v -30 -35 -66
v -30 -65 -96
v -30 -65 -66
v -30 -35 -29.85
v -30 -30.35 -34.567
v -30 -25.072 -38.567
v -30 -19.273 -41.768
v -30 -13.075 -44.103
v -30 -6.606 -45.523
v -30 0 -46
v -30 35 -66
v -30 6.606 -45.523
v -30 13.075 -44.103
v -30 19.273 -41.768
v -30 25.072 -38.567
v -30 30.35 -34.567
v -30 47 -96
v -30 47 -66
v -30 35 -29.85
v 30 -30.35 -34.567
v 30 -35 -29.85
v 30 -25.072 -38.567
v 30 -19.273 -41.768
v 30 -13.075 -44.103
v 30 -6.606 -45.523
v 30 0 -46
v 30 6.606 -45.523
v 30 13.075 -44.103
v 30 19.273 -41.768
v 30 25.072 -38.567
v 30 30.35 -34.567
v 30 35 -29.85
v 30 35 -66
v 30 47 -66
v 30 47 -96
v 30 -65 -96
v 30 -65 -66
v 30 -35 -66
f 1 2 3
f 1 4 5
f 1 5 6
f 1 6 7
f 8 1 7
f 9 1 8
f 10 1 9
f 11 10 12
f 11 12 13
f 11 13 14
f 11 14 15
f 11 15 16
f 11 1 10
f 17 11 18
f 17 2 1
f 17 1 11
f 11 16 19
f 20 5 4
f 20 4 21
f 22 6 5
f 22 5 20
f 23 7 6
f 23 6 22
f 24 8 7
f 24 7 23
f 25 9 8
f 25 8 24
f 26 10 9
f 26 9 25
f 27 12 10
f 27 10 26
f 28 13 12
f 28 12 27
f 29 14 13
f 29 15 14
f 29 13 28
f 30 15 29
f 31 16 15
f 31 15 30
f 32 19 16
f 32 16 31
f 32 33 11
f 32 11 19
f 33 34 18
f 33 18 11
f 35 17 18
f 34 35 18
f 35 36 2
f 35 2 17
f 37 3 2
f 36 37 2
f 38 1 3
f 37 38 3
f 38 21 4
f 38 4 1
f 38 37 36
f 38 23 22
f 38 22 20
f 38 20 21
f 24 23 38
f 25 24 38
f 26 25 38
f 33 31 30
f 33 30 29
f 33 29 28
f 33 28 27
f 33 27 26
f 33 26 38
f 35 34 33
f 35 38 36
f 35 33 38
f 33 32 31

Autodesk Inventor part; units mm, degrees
ref_plane "Work Plane7" through (0, -46.2947, -99.445) normal (0, -0.9997, 0.0235) x (0, -0.0235, -0.9997)
ref_plane "Work Plane8" through (0, 70.92, -98.723) normal (0, -0.9994, -0.036) x (0, 0.036, -0.9994)
ref_plane "Work Plane9" through (-30, 0, 0) normal (1, 0, 0) x (0, 1, 0)
sketch "Sketch20" plane through (0, 0, 0) normal (1, 0, 0) x (0, 1, 0)
  line L0 (-87.4, 0) -> (69.4, 0) projected
  line L1 (0, -124.4) -> (0, 74.4) construction
  circle A0 centre (0, 0) radius 40
  circle A1 centre (0, 0) radius 46
  line L2 (35, -29.8496) -> (35, -66)
  line L3 (-35, -66) -> (-35, -29.8496)
  line L4 (47, -66) -> (-65, -66)
  line L5 (47, -66) -> (47, -96)
  line L6 (47, -96) -> (-65, -96)
  line L7 (-65, -96) -> (-65, -66)
  point P0 (0, -66)
  dimension "d254" = 92
  dimension "d255" = 80
  dimension "d256" = 70
  dimension "d261" = 90
  dimension "d262" = 30
  dimension "d263" = 47
  dimension "d264" = 65
  dimension "d265" = 96
  dimension "d268" = 30
  dimension "d269" = 12
  dimension "d273" = 36.1504
extrude "Extrusion18" add sketch "Sketch20" along normal mid plane 60 contours L2 L4 L3 A1 | L4 L5 L6 L7
sketch "Sketch21" plane through (-30, 47, -66) normal (0, 1, 0) x (1, 0, 0)
  line L0 (0, 0) -> (60, 0) projected
  line L1 (60, 30) -> (60, 0) projected
  line L2 (0, 30) -> (60, 30) projected
  line L3 (0, 0) -> (0, 30) projected
  line L4 (60, 30) -> (60, 0) projected
  line L5 (0, 0) -> (0, 30) projected
  arc A0 (60, 1029.0992) -> (0, 1029.0992) centre (30, 530) ccw
  line L6 (0, 30) -> (60, 30) projected
  point P0 (30, 30)
  point P1 (60, 29.0992)
  point P2 (0, 29.0992)
  dimension "d270" = 500
sketch3d "3D Sketch1"
properties part number "shank_2"
